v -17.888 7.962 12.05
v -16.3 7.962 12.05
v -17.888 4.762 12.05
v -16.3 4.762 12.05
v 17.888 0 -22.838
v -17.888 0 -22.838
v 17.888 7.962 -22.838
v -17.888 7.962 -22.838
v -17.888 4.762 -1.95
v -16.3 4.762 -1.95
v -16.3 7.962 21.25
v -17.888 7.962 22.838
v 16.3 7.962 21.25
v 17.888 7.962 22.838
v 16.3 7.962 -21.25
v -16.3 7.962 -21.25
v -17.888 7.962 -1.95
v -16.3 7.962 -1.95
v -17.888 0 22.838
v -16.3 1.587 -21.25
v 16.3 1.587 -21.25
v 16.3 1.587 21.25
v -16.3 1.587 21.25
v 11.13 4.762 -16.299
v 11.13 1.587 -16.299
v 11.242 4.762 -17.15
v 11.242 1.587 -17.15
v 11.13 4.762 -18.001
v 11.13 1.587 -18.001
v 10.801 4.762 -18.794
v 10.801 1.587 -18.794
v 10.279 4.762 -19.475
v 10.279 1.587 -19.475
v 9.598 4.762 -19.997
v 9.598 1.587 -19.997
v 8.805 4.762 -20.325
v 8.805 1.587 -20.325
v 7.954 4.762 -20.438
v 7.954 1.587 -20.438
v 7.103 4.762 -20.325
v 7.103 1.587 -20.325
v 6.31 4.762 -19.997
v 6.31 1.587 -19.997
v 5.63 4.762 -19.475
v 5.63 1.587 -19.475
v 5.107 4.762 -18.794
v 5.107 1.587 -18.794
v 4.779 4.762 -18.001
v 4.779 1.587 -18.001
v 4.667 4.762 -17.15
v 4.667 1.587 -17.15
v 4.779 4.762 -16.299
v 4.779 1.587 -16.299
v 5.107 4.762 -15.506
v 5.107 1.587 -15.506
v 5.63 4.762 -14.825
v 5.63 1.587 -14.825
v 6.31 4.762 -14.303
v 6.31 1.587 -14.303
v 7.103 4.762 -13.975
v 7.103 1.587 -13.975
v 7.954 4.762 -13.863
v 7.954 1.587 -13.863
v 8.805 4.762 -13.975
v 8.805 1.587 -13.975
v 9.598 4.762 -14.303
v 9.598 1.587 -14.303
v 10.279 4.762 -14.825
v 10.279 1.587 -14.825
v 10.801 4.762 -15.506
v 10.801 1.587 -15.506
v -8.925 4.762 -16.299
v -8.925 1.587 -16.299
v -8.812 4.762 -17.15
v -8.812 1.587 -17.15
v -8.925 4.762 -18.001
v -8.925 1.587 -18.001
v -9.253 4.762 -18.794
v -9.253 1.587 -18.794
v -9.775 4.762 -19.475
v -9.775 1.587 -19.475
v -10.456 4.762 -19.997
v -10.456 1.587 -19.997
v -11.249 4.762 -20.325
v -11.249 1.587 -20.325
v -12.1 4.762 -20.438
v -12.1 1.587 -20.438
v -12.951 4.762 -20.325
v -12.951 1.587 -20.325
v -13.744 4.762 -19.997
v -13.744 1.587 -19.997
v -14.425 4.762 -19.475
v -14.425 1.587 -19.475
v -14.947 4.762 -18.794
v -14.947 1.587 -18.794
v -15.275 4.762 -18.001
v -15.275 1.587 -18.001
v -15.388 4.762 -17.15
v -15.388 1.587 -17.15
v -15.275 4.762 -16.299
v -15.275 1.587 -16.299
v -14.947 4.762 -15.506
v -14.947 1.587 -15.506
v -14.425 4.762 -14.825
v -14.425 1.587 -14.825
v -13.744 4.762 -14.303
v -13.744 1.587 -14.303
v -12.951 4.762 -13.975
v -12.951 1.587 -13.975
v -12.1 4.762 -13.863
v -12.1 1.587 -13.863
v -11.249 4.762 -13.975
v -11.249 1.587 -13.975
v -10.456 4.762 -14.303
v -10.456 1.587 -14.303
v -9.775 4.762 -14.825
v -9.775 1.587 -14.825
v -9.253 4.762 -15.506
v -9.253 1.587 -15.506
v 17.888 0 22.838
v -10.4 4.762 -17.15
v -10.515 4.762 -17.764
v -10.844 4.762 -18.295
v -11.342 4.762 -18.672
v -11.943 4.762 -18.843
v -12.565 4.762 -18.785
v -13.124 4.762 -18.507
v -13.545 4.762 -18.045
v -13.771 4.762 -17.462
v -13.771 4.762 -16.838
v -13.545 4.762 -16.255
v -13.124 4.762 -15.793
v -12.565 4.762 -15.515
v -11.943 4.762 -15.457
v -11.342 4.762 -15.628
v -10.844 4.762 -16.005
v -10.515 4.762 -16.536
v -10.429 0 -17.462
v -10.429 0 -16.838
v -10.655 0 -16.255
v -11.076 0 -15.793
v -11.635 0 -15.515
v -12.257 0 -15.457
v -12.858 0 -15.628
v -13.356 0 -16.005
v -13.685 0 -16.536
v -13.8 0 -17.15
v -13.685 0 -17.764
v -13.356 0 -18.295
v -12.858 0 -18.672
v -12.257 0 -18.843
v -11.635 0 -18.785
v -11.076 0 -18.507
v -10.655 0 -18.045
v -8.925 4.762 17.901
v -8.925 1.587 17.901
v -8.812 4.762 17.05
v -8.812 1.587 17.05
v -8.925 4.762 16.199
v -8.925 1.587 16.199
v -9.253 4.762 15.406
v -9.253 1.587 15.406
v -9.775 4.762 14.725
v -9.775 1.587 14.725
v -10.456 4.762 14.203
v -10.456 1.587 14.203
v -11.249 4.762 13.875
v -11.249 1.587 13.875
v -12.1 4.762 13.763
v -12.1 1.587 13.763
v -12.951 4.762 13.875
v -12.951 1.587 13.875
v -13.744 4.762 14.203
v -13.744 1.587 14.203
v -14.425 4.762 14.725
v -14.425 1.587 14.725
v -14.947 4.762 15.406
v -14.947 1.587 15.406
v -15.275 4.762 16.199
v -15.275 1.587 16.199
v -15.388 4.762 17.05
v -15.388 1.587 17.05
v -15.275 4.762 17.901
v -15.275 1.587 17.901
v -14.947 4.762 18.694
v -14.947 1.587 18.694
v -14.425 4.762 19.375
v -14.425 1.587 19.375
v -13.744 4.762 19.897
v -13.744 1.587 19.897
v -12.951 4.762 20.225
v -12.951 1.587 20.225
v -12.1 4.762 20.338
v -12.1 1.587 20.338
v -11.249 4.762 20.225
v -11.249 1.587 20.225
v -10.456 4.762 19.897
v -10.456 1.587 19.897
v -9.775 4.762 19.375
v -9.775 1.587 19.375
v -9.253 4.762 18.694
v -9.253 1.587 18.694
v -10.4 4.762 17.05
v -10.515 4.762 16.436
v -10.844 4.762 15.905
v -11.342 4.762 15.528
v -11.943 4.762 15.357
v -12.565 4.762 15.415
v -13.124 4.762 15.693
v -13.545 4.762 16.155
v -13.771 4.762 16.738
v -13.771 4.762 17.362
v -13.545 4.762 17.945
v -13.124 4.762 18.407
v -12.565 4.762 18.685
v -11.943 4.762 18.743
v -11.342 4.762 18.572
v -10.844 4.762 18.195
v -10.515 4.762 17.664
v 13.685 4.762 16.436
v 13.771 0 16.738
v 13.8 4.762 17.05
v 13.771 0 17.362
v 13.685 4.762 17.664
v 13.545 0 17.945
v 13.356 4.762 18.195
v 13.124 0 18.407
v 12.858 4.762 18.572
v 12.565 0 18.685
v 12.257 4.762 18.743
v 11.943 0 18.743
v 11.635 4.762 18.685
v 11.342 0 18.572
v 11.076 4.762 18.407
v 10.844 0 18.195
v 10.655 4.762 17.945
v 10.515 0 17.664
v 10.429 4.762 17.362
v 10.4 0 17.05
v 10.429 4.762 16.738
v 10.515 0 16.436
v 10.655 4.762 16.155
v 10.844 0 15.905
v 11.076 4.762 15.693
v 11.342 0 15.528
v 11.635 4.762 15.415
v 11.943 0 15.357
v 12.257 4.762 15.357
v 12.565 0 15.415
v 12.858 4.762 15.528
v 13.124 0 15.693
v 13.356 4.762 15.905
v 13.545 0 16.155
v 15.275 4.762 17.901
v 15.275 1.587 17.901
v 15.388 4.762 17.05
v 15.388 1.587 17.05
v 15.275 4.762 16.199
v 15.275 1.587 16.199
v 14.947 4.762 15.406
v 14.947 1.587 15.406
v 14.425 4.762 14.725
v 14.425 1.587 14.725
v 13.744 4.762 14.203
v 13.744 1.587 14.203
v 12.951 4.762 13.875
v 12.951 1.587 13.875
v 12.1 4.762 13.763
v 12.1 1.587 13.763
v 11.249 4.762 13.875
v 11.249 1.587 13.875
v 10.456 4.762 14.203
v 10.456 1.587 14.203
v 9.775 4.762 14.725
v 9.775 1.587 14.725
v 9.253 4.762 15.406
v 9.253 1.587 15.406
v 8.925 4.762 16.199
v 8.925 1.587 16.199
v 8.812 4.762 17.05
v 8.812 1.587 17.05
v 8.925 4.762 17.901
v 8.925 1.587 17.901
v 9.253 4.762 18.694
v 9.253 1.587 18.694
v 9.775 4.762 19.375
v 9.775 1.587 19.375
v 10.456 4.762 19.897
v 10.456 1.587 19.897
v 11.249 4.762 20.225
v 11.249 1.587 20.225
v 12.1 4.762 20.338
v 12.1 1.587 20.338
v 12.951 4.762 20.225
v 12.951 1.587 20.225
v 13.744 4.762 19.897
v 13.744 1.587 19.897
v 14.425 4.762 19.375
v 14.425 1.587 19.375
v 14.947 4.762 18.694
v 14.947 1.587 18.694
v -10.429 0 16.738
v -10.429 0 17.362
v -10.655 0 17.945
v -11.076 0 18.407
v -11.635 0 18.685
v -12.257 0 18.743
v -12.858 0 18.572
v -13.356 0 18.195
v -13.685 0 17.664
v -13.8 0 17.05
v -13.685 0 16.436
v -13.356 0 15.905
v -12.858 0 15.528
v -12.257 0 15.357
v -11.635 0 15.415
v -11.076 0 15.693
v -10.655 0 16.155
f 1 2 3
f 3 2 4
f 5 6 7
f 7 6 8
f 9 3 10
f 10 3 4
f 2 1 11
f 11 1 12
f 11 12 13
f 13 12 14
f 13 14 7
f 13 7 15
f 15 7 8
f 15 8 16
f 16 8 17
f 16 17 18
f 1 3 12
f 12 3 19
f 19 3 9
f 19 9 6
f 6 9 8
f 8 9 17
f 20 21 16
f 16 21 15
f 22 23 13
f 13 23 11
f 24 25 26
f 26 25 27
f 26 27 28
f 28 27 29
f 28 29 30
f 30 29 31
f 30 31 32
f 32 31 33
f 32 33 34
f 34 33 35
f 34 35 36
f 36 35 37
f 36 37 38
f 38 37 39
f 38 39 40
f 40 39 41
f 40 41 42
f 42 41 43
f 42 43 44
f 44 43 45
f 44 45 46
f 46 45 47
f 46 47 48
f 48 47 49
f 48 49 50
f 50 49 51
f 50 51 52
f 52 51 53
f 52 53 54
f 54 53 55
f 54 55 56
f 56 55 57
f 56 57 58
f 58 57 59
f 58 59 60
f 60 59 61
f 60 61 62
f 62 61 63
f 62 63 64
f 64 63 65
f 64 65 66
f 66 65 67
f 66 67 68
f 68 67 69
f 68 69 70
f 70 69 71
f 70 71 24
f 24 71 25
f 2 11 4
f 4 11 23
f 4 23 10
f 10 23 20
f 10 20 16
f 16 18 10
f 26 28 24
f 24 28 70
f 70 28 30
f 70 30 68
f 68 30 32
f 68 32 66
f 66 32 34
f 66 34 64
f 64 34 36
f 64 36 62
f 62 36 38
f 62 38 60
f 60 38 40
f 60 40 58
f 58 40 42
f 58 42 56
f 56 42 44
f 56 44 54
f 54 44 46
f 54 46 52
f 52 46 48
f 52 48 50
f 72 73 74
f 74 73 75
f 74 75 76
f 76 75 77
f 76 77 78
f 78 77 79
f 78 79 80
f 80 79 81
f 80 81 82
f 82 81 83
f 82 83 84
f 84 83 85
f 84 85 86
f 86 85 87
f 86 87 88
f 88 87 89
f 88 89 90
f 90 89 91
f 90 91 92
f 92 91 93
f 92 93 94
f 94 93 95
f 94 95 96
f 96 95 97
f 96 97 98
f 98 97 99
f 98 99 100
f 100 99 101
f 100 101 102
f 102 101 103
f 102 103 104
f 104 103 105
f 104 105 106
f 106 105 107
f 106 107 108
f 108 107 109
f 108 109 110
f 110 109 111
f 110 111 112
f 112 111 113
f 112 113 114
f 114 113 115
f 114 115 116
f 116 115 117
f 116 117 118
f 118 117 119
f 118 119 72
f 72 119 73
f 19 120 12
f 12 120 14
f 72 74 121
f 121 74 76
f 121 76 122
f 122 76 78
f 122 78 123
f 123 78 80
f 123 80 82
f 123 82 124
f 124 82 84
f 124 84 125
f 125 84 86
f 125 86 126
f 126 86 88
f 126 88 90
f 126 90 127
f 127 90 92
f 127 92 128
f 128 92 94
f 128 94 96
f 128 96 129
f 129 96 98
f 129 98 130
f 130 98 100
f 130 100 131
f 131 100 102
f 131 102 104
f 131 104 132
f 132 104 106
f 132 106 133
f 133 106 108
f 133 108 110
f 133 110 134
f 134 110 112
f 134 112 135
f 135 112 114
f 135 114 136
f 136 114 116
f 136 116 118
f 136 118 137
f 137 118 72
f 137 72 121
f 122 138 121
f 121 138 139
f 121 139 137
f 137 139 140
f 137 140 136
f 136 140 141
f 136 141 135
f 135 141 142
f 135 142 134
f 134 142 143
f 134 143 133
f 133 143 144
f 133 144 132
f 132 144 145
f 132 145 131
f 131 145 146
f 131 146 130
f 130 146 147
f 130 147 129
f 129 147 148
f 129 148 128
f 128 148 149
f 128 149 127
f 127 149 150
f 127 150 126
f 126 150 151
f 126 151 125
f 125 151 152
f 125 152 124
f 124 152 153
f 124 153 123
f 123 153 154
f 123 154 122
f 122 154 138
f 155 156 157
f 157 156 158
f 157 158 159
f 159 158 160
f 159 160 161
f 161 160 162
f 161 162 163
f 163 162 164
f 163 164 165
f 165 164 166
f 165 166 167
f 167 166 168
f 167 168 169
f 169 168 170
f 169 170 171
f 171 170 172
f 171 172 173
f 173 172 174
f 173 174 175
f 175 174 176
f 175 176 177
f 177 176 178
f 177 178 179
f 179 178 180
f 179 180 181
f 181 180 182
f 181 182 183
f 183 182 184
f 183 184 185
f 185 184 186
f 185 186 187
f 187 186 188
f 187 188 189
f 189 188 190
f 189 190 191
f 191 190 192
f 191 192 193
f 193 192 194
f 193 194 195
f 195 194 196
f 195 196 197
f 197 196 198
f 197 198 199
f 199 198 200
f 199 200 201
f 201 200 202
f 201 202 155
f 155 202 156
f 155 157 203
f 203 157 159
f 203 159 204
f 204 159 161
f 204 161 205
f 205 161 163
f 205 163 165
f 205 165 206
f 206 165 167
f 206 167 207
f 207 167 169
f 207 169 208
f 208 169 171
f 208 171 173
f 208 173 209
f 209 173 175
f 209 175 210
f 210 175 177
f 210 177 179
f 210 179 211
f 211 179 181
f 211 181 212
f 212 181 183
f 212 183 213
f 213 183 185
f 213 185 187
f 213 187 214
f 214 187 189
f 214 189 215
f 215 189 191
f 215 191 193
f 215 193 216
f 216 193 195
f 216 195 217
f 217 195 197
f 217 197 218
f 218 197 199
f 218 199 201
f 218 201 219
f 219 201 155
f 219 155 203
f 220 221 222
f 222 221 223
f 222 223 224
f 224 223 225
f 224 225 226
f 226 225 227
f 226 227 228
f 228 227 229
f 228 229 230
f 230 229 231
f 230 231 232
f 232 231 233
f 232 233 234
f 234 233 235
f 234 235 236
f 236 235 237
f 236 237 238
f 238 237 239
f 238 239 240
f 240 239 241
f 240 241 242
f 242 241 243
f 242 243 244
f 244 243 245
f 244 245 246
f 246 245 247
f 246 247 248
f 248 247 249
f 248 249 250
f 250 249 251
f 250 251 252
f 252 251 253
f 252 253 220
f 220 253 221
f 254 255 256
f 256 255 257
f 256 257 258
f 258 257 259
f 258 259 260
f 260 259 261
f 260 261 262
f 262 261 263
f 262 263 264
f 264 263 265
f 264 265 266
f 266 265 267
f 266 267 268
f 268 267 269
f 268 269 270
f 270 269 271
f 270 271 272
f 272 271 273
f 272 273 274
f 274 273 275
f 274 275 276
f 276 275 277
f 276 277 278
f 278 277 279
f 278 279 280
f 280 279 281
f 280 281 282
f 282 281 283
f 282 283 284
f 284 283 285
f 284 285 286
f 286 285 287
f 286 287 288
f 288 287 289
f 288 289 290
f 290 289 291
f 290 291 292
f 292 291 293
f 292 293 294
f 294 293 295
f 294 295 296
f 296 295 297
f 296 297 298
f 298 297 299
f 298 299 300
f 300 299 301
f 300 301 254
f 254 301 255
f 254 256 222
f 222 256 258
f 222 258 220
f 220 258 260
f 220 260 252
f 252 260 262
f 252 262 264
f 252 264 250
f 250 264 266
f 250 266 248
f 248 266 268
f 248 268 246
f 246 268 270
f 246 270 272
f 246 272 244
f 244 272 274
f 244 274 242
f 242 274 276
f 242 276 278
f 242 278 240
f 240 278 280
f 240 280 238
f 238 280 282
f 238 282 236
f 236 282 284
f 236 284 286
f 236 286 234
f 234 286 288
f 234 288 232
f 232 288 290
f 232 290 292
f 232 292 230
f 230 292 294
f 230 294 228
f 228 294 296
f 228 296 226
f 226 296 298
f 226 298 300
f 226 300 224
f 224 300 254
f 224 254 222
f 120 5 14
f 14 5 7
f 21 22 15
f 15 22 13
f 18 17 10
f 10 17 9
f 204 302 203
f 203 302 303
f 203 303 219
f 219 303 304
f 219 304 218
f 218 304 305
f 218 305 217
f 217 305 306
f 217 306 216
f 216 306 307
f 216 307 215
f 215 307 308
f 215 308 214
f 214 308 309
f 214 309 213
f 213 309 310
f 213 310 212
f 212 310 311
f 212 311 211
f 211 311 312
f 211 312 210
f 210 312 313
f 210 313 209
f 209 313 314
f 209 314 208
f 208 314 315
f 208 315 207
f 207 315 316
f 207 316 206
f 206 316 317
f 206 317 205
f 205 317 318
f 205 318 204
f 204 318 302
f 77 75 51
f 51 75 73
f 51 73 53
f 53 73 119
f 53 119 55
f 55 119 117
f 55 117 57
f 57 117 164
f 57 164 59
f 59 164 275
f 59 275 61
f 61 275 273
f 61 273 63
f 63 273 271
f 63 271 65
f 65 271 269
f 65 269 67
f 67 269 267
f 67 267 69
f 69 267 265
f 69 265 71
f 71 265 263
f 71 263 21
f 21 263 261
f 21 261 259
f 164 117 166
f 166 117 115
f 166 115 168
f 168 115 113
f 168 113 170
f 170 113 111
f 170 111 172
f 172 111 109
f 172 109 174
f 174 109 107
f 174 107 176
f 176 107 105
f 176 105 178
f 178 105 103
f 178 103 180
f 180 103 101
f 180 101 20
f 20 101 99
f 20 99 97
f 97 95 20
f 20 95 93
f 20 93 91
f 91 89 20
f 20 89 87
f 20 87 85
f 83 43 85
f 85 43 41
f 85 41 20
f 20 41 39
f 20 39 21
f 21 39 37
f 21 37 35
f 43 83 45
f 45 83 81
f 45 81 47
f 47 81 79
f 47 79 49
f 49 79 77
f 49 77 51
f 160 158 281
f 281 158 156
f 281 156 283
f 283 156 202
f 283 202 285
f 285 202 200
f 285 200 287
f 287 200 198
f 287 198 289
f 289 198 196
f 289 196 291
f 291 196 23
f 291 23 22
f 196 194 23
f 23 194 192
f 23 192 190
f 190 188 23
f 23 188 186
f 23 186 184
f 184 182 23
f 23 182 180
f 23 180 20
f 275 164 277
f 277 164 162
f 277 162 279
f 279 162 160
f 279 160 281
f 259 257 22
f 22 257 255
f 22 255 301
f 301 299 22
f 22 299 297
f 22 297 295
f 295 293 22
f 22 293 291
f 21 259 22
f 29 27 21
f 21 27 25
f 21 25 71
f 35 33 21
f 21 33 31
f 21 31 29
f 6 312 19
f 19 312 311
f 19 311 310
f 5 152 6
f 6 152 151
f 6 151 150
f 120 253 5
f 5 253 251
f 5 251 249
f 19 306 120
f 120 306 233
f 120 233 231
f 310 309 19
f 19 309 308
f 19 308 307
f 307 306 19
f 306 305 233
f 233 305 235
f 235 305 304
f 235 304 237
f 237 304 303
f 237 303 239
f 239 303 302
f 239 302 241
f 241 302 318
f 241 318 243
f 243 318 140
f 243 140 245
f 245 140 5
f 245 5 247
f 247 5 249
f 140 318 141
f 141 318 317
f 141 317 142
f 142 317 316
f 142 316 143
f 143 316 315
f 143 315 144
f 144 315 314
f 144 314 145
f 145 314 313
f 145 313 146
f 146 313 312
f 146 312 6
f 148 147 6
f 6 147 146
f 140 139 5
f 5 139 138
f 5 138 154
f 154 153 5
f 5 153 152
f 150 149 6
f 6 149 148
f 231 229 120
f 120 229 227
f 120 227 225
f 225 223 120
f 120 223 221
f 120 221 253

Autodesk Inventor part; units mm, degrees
ref_plane "YZ Plane" through (0, 0, 0) normal (1, 0, 0) x (0, 1, 0)
ref_plane "XZ Plane" through (0, 0, 0) normal (0, 1, 0) x (-1, 0, 0)
ref_plane "XY Plane" through (0, 0, 0) normal (0, 0, 1) x (1, 0, 0)
sketch "Sketch1" plane through (0, 0, 0) normal (0, 1, 0) x (-1, 0, 0)
  line L0 (16.3, 21.25) -> (-16.3, 21.25)
  line L1 (-16.3, 21.25) -> (-16.3, -21.25)
  line L2 (-16.3, -21.25) -> (16.3, -21.25)
  line L3 (16.3, -21.25) -> (16.3, 21.25)
  line L4 (16.3, 21.25) -> (-16.3, -21.25) construction
  line L5 (-16.3, 21.25) -> (16.3, -21.25) construction
  circle A0 centre (12.1, 17.05) radius 1.7
  circle A1 centre (12.1, -17.15) radius 1.7
  circle A2 centre (-12.1, 17.05) radius 1.7
  point P0 (0, 0)
  dimension "d0" = 42.5
  dimension "d1" = 32.6
  dimension "d4" = 3.4
  dimension "d5" = 3.4
  dimension "d6" = 3.4
  dimension "d7" = 34.2
  dimension "d8" = 24.2
  dimension "d9" = 4.2
  dimension "d10" = 4.2
  dimension "d11" = 4.2
  dimension "d12" = 4.2
extrude "Extrusion1" add sketch "Sketch1" along normal blind 1.5875
sketch "Sketch2" plane through (0, 1.5875, 0) normal (0, 1, 0) x (1, 0, 0)
  circle A0 centre (-12.1, -17.05) radius 1.7 projected
  circle A1 centre (-12.1, -17.05) radius 1.7
  circle A2 centre (-12.1, -17.05) radius 3.2875
  circle A3 centre (12.1, -17.05) radius 1.7 projected
  circle A4 centre (12.1, -17.05) radius 1.7
  circle A5 centre (12.1, -17.05) radius 3.2875
  circle A6 centre (-12.1, 17.15) radius 1.7 projected
  circle A7 centre (-12.1, 17.15) radius 1.7
  circle A8 centre (-12.1, 17.15) radius 3.2875
  line L0 (16.3, 21.25) -> (-16.3, 21.25) construction
  line L1 (0, 21.25) -> (0, -21.2058) construction
  circle A9 centre (7.9542, 17.15) radius 3.2875
  point P0 (0, 0)
  dimension "d13" = 1.5875
  dimension "d14" = 1.5875
  dimension "d15" = 1.5875
  dimension "d28" = 6.575
  dimension "d29" = 6.575
extrude "Extrusion2" add sketch "Sketch2" along normal blind 3.175
sketch "Sketch3" plane through (0, 0, 0) normal (0, -1, 0) x (1, 0, 0)
  line L0 (17.8875, 22.8375) -> (-17.8875, 22.8375)
  line L1 (-17.8875, 22.8375) -> (-17.8875, -22.8375)
  line L2 (-17.8875, -22.8375) -> (17.8875, -22.8375)
  line L3 (17.8875, -22.8375) -> (17.8875, 22.8375)
  line L4 (17.8875, 22.8375) -> (-17.8875, -22.8375) construction
  line L5 (-17.8875, 22.8375) -> (17.8875, -22.8375) construction
  line L6 (16.3, -21.25) -> (-16.3, -21.25) projected
  line L7 (16.3, 21.25) -> (16.3, -21.25) projected
  line L8 (-16.3, 21.25) -> (16.3, 21.25)
  line L9 (16.3, 21.25) -> (16.3, -21.25)
  line L10 (16.3, -21.25) -> (-16.3, -21.25)
  line L11 (-16.3, -21.25) -> (-16.3, 21.25)
  line L12 (-16.3, 21.25) -> (16.3, -21.25) construction
  line L13 (16.3, 21.25) -> (-16.3, -21.25) construction
  point P0 (0, 0)
  point P1 (-16.3, -21.25)
  dimension "d18" = 1.5875
  dimension "d19" = 1.5875
  dimension "d26" = 35.775
  dimension "d27" = 45.675
extrude "Extrusion3" add sketch "Sketch3" against normal blind 7.9625
sketch "Sketch4" plane through (0, 7.9625, 0) normal (0, 1, 0) x (1, 0, 0)
  line L0 (-16.3, 21.25) -> (-16.3, -21.25) projected
  line L1 (-17.8875, -22.8375) -> (-17.8875, 22.8375) projected
  line L2 (-16.3, -12.05) -> (-17.8875, -12.05)
  line L3 (-17.8875, -12.05) -> (-17.8875, 1.95)
  line L4 (-17.8875, 1.95) -> (-16.3, 1.95)
  line L5 (-16.3, 1.95) -> (-16.3, -12.05)
  circle A0 centre (-12.1, -17.05) radius 1.7 construction
  circle A1 centre (-12.1, -17.05) radius 1.7 construction
  point P0 (0, 0)
  point P1 (-17.0938, -12.05)
  point P2 (-17.0938, 1.95)
  dimension "d22" = 5
  dimension "d23" = 14
extrude "Extrusion4" cut sketch "Sketch4" against normal blind 3.2
equation "\"d4\" = m3_clearance"
equation "\"d5\" = m3_clearance"
equation "\"d6\" = m3_clearance"
equation "\"d10\" = d9"
equation "\"d11\" = d9"
equation "\"d12\" = d9"
equation "\"d14\" = d13"
equation "\"d15\" = d13"
equation "\"d29\" = d28"
equation "\"m3_heat_set_insert\" = 4"
equation "\"m3_clearance\" = 3.4"
equation "\"m3_heat_set_depth\" = 7"
equation "\"robot_diameter\" = 354"
equation "\"hardboard_thickness\" = 5"
equation "\"motor_centerline_height\" = 13"
properties part number "microphone_MCU_case"
